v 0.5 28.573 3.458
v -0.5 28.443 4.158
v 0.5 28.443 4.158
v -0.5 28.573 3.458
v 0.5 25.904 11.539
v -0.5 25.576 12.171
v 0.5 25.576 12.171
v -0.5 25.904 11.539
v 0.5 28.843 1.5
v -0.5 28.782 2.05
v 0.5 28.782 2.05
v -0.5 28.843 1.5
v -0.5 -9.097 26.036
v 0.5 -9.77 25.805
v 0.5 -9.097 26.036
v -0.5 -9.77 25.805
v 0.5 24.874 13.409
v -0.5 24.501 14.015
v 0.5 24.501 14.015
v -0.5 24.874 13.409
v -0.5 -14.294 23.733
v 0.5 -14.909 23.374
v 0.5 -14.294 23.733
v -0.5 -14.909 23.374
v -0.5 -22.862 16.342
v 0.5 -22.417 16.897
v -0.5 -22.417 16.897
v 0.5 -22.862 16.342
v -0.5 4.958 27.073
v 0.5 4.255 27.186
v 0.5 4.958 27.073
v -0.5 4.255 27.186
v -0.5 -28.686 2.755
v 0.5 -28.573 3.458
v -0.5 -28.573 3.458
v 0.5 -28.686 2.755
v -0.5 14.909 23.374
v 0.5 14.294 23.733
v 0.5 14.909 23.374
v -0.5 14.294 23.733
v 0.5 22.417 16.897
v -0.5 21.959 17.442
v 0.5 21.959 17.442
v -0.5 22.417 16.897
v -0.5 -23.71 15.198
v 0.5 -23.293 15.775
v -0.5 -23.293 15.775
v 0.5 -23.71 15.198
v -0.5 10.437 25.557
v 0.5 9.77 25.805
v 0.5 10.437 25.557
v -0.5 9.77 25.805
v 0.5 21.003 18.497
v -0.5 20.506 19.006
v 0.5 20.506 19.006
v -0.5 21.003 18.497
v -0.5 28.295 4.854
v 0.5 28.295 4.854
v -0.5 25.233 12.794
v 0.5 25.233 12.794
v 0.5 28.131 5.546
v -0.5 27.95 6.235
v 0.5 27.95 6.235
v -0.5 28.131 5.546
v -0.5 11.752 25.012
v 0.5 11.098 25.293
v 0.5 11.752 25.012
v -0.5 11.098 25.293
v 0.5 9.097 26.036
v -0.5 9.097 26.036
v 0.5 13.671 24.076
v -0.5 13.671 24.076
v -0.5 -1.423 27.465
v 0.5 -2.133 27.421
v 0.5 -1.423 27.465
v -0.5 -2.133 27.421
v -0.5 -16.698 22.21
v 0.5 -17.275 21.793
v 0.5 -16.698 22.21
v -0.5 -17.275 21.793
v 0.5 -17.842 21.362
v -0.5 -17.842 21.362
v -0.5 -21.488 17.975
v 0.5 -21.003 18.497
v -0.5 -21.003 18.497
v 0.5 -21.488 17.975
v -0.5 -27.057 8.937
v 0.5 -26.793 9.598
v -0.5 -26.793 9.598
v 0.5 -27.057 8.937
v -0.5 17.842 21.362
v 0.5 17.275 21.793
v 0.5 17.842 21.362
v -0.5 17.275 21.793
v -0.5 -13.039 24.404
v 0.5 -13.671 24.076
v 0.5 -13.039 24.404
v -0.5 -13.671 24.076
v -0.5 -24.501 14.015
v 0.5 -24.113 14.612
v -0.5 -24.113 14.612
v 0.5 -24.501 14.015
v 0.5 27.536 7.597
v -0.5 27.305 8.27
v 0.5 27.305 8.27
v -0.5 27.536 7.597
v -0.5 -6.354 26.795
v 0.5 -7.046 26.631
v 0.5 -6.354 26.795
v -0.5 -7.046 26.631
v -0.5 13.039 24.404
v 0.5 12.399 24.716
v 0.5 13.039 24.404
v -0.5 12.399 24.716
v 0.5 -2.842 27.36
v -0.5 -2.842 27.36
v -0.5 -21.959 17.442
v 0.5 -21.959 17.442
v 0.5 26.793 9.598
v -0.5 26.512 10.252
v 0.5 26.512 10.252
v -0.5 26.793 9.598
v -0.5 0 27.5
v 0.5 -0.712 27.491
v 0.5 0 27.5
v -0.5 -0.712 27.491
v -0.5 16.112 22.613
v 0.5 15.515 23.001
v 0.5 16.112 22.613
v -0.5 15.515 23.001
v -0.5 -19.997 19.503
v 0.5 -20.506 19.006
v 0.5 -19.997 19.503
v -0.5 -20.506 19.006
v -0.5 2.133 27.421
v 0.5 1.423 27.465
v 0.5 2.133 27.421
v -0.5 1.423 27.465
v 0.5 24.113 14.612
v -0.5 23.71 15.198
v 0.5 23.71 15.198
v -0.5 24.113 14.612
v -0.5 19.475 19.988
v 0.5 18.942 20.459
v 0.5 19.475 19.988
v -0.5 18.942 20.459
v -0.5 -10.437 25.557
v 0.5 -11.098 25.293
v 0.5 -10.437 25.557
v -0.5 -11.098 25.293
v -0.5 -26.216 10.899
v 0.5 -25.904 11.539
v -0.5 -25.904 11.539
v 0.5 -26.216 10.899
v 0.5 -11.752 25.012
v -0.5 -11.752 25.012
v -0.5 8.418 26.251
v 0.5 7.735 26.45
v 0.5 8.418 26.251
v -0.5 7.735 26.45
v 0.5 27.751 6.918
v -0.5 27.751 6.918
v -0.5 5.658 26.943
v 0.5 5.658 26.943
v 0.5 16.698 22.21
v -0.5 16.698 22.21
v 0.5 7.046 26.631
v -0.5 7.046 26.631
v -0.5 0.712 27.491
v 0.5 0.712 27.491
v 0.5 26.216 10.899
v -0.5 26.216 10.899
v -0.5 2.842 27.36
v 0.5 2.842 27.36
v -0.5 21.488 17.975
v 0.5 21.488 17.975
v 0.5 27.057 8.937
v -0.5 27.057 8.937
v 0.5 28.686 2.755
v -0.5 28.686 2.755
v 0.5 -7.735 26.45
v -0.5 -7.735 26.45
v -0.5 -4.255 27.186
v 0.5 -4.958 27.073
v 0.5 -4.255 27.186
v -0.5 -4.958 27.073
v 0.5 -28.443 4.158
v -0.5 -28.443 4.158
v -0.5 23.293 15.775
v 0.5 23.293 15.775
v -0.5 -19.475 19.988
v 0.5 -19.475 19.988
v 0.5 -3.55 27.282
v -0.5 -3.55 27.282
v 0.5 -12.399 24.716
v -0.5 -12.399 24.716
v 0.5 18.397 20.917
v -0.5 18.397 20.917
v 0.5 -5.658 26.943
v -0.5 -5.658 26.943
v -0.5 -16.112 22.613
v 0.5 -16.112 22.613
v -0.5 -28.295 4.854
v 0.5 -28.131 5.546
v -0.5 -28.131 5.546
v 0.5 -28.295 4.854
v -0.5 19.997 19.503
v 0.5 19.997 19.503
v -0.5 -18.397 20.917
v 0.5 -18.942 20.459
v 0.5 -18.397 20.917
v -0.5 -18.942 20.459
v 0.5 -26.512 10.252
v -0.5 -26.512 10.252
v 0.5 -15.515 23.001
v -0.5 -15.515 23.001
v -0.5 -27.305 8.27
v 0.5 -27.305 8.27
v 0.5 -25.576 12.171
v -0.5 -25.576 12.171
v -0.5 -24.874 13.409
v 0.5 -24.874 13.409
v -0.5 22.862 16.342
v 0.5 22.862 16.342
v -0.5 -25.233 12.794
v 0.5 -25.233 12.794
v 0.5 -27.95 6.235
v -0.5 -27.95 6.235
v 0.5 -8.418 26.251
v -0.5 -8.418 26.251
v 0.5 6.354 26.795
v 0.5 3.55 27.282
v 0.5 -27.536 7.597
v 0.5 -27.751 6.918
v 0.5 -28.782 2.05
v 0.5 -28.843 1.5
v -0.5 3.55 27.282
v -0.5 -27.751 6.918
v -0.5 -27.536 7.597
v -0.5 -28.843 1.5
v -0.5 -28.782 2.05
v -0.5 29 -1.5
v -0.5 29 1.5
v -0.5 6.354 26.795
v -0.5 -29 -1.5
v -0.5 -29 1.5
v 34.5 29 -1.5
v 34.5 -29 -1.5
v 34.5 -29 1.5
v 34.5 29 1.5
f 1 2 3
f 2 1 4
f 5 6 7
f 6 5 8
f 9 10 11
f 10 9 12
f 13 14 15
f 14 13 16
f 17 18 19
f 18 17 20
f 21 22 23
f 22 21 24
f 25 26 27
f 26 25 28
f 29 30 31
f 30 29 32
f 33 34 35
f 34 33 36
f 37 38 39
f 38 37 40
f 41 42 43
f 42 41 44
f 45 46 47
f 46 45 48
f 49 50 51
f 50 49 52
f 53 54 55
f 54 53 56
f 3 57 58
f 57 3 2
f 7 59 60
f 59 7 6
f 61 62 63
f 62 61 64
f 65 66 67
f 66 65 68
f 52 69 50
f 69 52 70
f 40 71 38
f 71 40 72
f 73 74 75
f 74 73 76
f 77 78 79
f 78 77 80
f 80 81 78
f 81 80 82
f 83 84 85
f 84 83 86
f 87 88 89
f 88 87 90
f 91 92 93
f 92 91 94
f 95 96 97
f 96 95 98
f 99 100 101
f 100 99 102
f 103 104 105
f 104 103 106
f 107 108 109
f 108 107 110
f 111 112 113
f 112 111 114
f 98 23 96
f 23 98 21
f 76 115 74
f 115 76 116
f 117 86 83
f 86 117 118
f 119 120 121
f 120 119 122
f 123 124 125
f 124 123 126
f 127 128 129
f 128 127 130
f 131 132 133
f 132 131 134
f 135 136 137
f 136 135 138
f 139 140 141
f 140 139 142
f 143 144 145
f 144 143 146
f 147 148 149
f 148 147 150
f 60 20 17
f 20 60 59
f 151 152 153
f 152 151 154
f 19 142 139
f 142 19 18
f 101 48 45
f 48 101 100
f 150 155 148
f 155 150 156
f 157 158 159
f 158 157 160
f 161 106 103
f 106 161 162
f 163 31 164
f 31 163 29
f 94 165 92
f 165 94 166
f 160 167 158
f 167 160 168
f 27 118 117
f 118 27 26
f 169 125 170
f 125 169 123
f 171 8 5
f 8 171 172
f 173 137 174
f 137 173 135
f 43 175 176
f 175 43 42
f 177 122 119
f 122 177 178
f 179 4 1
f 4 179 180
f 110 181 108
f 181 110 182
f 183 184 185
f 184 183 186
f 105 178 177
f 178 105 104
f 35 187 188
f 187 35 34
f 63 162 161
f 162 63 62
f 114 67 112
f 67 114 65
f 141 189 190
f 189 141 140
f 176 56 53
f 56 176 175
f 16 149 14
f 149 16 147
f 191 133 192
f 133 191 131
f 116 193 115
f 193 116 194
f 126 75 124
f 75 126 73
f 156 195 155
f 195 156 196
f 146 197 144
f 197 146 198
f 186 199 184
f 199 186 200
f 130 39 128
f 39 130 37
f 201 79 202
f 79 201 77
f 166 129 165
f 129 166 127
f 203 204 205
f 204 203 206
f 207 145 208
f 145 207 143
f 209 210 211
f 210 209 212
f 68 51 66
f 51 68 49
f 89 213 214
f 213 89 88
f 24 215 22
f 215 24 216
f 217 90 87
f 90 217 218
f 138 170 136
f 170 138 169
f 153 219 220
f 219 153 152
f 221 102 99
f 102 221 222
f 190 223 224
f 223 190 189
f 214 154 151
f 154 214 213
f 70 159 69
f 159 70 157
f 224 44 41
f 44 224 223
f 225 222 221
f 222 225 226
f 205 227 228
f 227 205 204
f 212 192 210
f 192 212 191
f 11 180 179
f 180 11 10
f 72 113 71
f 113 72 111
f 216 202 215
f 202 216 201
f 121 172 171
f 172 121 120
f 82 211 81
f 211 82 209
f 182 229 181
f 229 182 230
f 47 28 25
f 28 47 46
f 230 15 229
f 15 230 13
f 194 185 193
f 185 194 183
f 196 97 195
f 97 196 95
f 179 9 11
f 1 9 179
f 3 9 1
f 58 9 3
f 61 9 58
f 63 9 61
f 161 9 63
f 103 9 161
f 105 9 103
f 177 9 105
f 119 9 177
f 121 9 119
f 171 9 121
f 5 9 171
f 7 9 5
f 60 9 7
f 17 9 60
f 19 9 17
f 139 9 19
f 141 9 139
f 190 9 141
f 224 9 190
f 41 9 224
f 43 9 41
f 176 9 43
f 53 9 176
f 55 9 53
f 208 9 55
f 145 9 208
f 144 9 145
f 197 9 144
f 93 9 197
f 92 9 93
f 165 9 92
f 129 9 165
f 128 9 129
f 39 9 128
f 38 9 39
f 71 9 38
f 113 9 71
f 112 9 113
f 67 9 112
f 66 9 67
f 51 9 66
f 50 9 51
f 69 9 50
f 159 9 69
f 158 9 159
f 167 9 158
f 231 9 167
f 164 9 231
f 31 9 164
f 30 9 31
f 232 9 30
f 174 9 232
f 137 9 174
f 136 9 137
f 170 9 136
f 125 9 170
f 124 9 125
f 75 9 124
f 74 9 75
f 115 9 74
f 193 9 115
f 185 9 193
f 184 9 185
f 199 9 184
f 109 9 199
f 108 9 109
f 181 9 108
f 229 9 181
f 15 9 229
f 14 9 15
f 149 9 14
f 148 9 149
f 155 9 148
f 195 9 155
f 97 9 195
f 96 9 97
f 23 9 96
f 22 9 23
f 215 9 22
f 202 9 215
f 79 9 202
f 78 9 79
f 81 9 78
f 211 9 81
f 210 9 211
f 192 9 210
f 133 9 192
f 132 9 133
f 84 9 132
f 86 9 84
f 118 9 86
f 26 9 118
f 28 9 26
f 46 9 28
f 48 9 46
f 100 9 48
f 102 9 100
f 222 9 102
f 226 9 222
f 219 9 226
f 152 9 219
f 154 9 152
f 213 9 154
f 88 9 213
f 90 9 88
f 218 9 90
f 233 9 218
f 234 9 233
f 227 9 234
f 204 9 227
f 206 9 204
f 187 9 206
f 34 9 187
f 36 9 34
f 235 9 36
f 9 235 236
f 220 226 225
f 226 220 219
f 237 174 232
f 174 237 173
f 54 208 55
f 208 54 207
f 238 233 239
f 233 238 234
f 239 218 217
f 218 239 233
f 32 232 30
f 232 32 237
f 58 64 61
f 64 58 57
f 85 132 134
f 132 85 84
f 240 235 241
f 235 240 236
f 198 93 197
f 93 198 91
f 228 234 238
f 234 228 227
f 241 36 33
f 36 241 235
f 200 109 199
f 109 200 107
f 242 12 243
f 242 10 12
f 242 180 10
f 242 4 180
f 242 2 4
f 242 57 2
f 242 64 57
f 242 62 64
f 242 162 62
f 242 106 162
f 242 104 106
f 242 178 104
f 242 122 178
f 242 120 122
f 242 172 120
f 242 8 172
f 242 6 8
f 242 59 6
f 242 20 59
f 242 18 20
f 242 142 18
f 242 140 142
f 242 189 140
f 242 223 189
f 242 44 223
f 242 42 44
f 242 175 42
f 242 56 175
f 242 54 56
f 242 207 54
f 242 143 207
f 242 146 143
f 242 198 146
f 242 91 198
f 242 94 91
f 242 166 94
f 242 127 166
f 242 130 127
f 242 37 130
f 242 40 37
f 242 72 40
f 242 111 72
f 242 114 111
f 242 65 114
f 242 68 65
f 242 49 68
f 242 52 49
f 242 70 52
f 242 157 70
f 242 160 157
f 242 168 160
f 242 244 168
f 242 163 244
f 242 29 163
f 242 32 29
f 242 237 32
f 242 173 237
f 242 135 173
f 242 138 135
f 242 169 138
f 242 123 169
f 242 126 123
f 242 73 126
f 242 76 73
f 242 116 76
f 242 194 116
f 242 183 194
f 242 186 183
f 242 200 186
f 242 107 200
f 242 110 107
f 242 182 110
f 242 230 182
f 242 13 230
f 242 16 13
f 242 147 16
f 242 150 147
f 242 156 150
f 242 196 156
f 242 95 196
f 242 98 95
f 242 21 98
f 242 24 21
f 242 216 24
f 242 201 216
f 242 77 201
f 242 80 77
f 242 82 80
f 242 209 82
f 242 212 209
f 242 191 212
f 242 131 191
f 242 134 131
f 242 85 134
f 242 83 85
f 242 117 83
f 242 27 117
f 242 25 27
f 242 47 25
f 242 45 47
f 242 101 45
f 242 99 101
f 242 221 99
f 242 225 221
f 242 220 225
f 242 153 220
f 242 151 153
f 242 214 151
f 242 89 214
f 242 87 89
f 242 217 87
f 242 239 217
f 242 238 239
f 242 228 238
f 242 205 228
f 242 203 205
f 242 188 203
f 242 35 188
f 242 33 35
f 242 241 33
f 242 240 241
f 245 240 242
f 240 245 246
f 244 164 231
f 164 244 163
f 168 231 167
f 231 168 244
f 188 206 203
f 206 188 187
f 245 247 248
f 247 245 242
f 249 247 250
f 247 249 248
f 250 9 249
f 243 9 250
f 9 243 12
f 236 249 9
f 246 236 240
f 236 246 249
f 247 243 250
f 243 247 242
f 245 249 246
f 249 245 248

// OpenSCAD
$fn = $preview ? 64 : 256;

width = 58;
holder = 1;
base_width = 35;
base_heght = 3;

translate([base_width/2-holder/2, 0, 0]) cube([base_width, width, base_heght], center=true);

translate([0, 0, -base_heght/2]) difference() {
	rotate([0, 90, 0]) cylinder(holder, d=width, center=true);
	translate([-holder/2, -width/2, -width/2]) cube([holder, width, width/2]);
}
